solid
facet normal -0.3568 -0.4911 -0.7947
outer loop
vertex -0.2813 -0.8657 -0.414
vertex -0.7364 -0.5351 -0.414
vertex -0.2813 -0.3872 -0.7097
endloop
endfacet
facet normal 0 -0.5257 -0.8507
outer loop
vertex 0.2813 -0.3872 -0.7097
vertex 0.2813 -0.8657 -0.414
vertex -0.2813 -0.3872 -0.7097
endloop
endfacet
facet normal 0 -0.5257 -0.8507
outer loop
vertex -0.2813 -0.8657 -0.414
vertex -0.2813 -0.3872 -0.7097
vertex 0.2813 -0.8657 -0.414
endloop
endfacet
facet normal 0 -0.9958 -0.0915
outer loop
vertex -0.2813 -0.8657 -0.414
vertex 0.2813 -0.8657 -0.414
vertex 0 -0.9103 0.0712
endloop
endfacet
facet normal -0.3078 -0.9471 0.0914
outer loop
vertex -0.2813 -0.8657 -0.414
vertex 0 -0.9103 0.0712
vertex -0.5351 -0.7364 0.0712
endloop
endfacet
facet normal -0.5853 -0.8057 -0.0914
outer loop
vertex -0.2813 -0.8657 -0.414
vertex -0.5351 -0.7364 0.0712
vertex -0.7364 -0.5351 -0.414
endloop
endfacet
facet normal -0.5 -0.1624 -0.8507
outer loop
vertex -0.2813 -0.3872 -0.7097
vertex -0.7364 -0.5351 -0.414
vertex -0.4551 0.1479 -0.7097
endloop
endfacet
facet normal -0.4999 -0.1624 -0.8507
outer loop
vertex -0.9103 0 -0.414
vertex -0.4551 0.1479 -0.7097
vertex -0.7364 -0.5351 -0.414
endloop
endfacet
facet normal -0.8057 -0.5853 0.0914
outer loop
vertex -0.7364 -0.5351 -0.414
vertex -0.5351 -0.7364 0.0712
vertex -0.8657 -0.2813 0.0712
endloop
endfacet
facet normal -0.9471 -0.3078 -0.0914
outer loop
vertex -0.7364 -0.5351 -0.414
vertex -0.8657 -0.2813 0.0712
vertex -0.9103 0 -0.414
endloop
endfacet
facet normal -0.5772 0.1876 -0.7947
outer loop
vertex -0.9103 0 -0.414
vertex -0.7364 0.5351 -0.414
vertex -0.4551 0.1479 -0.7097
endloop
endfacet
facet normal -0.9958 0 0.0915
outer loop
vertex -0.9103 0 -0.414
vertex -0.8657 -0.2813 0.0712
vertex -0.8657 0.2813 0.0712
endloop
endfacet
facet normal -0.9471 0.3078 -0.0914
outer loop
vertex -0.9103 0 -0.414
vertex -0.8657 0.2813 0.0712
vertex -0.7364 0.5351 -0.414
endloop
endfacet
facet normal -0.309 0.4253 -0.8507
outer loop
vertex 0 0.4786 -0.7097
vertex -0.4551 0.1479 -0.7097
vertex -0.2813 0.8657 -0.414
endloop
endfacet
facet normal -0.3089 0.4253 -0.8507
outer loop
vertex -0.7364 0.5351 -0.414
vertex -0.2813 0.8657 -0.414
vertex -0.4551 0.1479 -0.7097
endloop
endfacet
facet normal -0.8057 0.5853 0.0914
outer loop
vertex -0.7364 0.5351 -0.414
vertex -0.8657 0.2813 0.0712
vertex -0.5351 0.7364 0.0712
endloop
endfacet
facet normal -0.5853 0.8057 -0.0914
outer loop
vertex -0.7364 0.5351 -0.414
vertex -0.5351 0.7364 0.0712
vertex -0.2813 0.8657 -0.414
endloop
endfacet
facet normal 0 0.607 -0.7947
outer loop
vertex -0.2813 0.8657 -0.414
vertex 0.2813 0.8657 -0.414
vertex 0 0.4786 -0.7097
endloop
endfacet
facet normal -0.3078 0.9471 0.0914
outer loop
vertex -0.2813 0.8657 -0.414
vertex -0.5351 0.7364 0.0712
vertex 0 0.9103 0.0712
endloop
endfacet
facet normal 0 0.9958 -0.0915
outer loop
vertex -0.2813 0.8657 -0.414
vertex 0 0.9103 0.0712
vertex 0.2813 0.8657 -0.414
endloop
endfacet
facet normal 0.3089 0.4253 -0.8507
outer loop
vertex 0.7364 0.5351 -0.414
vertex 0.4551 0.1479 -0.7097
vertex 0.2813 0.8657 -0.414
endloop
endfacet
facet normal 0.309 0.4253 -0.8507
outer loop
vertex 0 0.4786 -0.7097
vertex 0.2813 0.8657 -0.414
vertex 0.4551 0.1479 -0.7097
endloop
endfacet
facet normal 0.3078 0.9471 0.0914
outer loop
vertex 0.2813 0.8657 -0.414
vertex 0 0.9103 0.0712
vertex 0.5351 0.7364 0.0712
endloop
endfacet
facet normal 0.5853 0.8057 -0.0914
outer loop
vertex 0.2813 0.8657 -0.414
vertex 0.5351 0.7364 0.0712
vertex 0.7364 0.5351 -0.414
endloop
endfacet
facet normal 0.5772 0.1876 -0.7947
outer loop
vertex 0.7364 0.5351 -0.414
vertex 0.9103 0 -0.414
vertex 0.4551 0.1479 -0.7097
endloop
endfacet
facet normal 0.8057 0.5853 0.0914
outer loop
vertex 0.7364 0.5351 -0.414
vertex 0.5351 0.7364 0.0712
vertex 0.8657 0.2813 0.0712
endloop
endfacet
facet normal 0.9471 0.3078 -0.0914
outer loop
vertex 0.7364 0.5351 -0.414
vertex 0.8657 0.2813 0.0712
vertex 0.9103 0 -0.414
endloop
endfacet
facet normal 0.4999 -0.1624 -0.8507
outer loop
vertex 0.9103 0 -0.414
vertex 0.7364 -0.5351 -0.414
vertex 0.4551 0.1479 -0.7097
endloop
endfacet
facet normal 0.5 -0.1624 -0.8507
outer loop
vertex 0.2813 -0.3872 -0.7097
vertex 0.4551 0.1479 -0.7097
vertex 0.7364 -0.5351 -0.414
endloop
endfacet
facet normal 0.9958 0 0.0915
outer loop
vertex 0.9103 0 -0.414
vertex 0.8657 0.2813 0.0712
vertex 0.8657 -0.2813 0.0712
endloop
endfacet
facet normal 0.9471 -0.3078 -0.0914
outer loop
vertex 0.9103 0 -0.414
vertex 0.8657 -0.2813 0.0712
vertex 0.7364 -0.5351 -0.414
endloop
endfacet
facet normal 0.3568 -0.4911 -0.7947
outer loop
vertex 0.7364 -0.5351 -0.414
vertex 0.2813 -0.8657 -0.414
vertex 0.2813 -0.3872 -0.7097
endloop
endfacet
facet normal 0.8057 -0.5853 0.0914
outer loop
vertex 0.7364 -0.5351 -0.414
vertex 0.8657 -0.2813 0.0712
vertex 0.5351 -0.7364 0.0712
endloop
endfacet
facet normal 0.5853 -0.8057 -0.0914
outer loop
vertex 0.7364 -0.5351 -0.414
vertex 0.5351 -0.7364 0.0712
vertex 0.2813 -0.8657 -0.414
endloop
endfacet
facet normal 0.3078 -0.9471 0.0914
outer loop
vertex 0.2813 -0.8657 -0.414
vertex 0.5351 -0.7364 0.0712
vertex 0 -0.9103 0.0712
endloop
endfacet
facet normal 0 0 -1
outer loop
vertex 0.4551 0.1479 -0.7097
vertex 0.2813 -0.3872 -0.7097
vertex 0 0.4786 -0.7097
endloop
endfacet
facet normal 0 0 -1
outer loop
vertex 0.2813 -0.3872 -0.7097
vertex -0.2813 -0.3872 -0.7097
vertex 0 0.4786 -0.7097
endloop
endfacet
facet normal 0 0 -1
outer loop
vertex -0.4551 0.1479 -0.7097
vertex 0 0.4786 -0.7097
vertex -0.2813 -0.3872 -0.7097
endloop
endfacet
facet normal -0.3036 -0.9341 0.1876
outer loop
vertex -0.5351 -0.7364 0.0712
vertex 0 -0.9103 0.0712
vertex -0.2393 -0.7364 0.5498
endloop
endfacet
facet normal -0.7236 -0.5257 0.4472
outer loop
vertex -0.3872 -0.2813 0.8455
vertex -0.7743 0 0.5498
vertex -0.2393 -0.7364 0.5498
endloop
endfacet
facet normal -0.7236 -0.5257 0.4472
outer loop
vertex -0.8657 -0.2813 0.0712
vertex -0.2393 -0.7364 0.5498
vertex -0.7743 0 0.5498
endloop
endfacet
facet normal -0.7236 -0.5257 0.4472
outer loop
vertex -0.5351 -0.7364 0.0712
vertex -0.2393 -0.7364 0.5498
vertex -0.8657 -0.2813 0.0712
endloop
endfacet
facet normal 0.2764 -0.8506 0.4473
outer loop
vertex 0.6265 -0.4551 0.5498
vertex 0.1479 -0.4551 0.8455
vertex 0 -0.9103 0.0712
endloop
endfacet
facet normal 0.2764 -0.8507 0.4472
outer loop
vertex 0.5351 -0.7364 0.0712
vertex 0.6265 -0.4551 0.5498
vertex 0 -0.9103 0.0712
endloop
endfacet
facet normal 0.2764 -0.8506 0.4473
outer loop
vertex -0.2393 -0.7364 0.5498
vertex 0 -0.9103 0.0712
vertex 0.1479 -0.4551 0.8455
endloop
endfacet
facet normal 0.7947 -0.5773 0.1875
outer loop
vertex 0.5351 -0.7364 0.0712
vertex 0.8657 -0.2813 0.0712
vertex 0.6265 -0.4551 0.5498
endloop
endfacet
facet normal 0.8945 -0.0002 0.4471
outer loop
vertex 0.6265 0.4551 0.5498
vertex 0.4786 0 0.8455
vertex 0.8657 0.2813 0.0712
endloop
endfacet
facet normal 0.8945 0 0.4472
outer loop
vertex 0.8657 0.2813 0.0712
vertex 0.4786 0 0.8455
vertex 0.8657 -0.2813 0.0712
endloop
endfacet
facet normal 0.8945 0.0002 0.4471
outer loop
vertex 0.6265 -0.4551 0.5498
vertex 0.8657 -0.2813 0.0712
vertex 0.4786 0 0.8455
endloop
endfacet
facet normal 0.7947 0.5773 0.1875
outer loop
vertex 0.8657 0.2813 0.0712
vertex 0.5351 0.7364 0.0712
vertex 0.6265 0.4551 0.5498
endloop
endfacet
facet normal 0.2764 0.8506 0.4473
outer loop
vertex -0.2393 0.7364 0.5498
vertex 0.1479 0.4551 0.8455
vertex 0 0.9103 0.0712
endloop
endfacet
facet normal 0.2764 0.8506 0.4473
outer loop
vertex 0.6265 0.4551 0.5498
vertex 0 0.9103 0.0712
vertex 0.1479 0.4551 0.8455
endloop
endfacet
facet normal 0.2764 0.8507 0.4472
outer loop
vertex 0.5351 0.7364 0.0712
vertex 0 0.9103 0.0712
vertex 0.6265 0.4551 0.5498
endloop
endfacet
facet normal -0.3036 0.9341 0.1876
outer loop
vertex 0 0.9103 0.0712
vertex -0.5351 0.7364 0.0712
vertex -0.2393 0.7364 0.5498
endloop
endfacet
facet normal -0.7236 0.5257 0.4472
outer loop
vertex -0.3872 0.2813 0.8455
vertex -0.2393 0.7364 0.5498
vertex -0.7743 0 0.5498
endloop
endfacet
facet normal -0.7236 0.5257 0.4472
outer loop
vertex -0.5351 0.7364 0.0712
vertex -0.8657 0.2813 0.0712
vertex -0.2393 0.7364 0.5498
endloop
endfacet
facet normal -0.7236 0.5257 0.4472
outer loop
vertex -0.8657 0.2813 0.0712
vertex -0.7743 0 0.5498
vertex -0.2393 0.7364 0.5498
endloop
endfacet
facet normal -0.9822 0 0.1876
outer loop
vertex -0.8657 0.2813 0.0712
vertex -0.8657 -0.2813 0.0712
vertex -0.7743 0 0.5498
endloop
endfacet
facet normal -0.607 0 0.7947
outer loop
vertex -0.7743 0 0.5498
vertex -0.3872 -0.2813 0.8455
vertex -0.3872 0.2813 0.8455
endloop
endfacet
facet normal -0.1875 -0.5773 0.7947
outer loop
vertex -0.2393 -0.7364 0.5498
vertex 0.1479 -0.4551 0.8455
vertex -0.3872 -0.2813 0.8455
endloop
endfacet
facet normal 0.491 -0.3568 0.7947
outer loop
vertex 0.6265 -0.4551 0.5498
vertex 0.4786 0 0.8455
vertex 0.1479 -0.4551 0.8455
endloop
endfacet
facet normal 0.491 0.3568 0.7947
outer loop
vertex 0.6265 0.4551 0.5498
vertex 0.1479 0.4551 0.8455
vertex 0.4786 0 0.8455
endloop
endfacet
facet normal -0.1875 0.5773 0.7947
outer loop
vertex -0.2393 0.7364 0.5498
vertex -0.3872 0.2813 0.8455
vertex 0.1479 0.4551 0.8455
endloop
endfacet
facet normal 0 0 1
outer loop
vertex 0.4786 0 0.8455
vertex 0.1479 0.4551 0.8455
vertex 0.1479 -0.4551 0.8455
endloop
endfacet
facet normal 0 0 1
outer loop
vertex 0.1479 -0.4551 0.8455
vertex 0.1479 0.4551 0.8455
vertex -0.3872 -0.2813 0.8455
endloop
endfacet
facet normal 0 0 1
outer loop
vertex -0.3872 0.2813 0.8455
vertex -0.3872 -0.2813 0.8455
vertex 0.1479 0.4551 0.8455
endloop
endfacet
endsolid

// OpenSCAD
polyhedron( points = [[-0.281294384439024, -0.865735098349175, -0.413976094660278], [-0.736438260634011, -0.535053715882357, -0.413976094660278], [-0.910287751860318, 3.52223871625124e-10, -0.413976094660278], [-0.736438261400043, 0.535053716571191, -0.413976094660278], [-0.281294385678491, 0.865735098997139, -0.413976094660278], [0.281294384559672, 0.865735098997144, -0.413976094660278], [0.736438260784349, 0.535053716571191, -0.413976094660278], [0.910287752058702, 3.52223871625124e-10, -0.413976094660278], [0.736438261646477, -0.535053715882354, -0.413976094660278], [0.281294385954615, -0.865735098349175, -0.413976094660278], [-0.281294384413766, -0.38716850539844, -0.709746514159834], [-0.455143875263359, 0.147885210115011, -0.709746514469527], [8.15349762699325e-10, 0.478566592351277, -0.709746514469527], [0.455143876814519, 0.147885210005537, -0.709746514469528], [0.2812943857918, -0.387168505515452, -0.709746514087517], [-0.53505371531792, -0.736438261111774, 0.0711987753320491], [7.72378100585616e-10, -0.910287752059926, 0.0711987753320491], [0.535053716440682, -0.736438261407786, 0.0711987752508191], [0.865735098119934, -0.281294385653941, 0.071198775119386], [0.865735097462403, 0.281294384444608, 0.0711987749879535], [0.535053714719251, 0.736438260411088, 0.0711987749067235], [-1.35543393391581e-09, 0.910287751407285, 0.0711987749067235], [-0.535053717039356, 0.736438260803184, 0.0711987749879535], [-0.865735098759469, 0.281294385079034, 0.071198775119386], [-0.865735098152459, -0.28129438501951, 0.0711987752508191], [-0.774337011995736, 1.18558260378286e-10, 0.54976536700798], [-0.239283295315863, -0.736438261107833, 0.549765366899957], [0.626451802246014, -0.455143876217734, 0.549765367030574], [0.626451801164966, 0.455143875409464, 0.549765366817909], [-0.239283297178839, 0.736438260726773, 0.549765366817909], [-0.387168505565361, -0.281294385081142, 0.845535786461875], [0.147885210160523, -0.455143875962803, 0.845535786710691], [0.478566591771164, -2.95180743418587e-10, 0.845535786579259], [0.147885209088814, 0.455143875579405, 0.845535786498032], [-0.387168506002166, 0.281294385002246, 0.845535786240665]], faces = [[0, 1, 10], [0, 10, 14, 9], [0, 9, 16], [0, 16, 15], [0, 15, 1], [1, 2, 11, 10], [1, 15, 24], [1, 24, 2], [2, 3, 11], [2, 24, 23], [2, 23, 3], [3, 4, 12, 11], [3, 23, 22], [3, 22, 4], [4, 5, 12], [4, 22, 21], [4, 21, 5], [5, 6, 13, 12], [5, 21, 20], [5, 20, 6], [6, 7, 13], [6, 20, 19], [6, 19, 7], [7, 8, 14, 13], [7, 19, 18], [7, 18, 8], [8, 9, 14], [8, 18, 17], [8, 17, 9], [9, 17, 16], [10, 11, 12, 13, 14], [15, 16, 26], [15, 26, 30, 25, 24], [16, 17, 27, 31, 26], [17, 18, 27], [18, 19, 28, 32, 27], [19, 20, 28], [20, 21, 29, 33, 28], [21, 22, 29], [22, 23, 25, 34, 29], [23, 24, 25], [25, 30, 34], [26, 31, 30], [27, 32, 31], [28, 33, 32], [29, 34, 33], [30, 31, 32, 33, 34]]);
